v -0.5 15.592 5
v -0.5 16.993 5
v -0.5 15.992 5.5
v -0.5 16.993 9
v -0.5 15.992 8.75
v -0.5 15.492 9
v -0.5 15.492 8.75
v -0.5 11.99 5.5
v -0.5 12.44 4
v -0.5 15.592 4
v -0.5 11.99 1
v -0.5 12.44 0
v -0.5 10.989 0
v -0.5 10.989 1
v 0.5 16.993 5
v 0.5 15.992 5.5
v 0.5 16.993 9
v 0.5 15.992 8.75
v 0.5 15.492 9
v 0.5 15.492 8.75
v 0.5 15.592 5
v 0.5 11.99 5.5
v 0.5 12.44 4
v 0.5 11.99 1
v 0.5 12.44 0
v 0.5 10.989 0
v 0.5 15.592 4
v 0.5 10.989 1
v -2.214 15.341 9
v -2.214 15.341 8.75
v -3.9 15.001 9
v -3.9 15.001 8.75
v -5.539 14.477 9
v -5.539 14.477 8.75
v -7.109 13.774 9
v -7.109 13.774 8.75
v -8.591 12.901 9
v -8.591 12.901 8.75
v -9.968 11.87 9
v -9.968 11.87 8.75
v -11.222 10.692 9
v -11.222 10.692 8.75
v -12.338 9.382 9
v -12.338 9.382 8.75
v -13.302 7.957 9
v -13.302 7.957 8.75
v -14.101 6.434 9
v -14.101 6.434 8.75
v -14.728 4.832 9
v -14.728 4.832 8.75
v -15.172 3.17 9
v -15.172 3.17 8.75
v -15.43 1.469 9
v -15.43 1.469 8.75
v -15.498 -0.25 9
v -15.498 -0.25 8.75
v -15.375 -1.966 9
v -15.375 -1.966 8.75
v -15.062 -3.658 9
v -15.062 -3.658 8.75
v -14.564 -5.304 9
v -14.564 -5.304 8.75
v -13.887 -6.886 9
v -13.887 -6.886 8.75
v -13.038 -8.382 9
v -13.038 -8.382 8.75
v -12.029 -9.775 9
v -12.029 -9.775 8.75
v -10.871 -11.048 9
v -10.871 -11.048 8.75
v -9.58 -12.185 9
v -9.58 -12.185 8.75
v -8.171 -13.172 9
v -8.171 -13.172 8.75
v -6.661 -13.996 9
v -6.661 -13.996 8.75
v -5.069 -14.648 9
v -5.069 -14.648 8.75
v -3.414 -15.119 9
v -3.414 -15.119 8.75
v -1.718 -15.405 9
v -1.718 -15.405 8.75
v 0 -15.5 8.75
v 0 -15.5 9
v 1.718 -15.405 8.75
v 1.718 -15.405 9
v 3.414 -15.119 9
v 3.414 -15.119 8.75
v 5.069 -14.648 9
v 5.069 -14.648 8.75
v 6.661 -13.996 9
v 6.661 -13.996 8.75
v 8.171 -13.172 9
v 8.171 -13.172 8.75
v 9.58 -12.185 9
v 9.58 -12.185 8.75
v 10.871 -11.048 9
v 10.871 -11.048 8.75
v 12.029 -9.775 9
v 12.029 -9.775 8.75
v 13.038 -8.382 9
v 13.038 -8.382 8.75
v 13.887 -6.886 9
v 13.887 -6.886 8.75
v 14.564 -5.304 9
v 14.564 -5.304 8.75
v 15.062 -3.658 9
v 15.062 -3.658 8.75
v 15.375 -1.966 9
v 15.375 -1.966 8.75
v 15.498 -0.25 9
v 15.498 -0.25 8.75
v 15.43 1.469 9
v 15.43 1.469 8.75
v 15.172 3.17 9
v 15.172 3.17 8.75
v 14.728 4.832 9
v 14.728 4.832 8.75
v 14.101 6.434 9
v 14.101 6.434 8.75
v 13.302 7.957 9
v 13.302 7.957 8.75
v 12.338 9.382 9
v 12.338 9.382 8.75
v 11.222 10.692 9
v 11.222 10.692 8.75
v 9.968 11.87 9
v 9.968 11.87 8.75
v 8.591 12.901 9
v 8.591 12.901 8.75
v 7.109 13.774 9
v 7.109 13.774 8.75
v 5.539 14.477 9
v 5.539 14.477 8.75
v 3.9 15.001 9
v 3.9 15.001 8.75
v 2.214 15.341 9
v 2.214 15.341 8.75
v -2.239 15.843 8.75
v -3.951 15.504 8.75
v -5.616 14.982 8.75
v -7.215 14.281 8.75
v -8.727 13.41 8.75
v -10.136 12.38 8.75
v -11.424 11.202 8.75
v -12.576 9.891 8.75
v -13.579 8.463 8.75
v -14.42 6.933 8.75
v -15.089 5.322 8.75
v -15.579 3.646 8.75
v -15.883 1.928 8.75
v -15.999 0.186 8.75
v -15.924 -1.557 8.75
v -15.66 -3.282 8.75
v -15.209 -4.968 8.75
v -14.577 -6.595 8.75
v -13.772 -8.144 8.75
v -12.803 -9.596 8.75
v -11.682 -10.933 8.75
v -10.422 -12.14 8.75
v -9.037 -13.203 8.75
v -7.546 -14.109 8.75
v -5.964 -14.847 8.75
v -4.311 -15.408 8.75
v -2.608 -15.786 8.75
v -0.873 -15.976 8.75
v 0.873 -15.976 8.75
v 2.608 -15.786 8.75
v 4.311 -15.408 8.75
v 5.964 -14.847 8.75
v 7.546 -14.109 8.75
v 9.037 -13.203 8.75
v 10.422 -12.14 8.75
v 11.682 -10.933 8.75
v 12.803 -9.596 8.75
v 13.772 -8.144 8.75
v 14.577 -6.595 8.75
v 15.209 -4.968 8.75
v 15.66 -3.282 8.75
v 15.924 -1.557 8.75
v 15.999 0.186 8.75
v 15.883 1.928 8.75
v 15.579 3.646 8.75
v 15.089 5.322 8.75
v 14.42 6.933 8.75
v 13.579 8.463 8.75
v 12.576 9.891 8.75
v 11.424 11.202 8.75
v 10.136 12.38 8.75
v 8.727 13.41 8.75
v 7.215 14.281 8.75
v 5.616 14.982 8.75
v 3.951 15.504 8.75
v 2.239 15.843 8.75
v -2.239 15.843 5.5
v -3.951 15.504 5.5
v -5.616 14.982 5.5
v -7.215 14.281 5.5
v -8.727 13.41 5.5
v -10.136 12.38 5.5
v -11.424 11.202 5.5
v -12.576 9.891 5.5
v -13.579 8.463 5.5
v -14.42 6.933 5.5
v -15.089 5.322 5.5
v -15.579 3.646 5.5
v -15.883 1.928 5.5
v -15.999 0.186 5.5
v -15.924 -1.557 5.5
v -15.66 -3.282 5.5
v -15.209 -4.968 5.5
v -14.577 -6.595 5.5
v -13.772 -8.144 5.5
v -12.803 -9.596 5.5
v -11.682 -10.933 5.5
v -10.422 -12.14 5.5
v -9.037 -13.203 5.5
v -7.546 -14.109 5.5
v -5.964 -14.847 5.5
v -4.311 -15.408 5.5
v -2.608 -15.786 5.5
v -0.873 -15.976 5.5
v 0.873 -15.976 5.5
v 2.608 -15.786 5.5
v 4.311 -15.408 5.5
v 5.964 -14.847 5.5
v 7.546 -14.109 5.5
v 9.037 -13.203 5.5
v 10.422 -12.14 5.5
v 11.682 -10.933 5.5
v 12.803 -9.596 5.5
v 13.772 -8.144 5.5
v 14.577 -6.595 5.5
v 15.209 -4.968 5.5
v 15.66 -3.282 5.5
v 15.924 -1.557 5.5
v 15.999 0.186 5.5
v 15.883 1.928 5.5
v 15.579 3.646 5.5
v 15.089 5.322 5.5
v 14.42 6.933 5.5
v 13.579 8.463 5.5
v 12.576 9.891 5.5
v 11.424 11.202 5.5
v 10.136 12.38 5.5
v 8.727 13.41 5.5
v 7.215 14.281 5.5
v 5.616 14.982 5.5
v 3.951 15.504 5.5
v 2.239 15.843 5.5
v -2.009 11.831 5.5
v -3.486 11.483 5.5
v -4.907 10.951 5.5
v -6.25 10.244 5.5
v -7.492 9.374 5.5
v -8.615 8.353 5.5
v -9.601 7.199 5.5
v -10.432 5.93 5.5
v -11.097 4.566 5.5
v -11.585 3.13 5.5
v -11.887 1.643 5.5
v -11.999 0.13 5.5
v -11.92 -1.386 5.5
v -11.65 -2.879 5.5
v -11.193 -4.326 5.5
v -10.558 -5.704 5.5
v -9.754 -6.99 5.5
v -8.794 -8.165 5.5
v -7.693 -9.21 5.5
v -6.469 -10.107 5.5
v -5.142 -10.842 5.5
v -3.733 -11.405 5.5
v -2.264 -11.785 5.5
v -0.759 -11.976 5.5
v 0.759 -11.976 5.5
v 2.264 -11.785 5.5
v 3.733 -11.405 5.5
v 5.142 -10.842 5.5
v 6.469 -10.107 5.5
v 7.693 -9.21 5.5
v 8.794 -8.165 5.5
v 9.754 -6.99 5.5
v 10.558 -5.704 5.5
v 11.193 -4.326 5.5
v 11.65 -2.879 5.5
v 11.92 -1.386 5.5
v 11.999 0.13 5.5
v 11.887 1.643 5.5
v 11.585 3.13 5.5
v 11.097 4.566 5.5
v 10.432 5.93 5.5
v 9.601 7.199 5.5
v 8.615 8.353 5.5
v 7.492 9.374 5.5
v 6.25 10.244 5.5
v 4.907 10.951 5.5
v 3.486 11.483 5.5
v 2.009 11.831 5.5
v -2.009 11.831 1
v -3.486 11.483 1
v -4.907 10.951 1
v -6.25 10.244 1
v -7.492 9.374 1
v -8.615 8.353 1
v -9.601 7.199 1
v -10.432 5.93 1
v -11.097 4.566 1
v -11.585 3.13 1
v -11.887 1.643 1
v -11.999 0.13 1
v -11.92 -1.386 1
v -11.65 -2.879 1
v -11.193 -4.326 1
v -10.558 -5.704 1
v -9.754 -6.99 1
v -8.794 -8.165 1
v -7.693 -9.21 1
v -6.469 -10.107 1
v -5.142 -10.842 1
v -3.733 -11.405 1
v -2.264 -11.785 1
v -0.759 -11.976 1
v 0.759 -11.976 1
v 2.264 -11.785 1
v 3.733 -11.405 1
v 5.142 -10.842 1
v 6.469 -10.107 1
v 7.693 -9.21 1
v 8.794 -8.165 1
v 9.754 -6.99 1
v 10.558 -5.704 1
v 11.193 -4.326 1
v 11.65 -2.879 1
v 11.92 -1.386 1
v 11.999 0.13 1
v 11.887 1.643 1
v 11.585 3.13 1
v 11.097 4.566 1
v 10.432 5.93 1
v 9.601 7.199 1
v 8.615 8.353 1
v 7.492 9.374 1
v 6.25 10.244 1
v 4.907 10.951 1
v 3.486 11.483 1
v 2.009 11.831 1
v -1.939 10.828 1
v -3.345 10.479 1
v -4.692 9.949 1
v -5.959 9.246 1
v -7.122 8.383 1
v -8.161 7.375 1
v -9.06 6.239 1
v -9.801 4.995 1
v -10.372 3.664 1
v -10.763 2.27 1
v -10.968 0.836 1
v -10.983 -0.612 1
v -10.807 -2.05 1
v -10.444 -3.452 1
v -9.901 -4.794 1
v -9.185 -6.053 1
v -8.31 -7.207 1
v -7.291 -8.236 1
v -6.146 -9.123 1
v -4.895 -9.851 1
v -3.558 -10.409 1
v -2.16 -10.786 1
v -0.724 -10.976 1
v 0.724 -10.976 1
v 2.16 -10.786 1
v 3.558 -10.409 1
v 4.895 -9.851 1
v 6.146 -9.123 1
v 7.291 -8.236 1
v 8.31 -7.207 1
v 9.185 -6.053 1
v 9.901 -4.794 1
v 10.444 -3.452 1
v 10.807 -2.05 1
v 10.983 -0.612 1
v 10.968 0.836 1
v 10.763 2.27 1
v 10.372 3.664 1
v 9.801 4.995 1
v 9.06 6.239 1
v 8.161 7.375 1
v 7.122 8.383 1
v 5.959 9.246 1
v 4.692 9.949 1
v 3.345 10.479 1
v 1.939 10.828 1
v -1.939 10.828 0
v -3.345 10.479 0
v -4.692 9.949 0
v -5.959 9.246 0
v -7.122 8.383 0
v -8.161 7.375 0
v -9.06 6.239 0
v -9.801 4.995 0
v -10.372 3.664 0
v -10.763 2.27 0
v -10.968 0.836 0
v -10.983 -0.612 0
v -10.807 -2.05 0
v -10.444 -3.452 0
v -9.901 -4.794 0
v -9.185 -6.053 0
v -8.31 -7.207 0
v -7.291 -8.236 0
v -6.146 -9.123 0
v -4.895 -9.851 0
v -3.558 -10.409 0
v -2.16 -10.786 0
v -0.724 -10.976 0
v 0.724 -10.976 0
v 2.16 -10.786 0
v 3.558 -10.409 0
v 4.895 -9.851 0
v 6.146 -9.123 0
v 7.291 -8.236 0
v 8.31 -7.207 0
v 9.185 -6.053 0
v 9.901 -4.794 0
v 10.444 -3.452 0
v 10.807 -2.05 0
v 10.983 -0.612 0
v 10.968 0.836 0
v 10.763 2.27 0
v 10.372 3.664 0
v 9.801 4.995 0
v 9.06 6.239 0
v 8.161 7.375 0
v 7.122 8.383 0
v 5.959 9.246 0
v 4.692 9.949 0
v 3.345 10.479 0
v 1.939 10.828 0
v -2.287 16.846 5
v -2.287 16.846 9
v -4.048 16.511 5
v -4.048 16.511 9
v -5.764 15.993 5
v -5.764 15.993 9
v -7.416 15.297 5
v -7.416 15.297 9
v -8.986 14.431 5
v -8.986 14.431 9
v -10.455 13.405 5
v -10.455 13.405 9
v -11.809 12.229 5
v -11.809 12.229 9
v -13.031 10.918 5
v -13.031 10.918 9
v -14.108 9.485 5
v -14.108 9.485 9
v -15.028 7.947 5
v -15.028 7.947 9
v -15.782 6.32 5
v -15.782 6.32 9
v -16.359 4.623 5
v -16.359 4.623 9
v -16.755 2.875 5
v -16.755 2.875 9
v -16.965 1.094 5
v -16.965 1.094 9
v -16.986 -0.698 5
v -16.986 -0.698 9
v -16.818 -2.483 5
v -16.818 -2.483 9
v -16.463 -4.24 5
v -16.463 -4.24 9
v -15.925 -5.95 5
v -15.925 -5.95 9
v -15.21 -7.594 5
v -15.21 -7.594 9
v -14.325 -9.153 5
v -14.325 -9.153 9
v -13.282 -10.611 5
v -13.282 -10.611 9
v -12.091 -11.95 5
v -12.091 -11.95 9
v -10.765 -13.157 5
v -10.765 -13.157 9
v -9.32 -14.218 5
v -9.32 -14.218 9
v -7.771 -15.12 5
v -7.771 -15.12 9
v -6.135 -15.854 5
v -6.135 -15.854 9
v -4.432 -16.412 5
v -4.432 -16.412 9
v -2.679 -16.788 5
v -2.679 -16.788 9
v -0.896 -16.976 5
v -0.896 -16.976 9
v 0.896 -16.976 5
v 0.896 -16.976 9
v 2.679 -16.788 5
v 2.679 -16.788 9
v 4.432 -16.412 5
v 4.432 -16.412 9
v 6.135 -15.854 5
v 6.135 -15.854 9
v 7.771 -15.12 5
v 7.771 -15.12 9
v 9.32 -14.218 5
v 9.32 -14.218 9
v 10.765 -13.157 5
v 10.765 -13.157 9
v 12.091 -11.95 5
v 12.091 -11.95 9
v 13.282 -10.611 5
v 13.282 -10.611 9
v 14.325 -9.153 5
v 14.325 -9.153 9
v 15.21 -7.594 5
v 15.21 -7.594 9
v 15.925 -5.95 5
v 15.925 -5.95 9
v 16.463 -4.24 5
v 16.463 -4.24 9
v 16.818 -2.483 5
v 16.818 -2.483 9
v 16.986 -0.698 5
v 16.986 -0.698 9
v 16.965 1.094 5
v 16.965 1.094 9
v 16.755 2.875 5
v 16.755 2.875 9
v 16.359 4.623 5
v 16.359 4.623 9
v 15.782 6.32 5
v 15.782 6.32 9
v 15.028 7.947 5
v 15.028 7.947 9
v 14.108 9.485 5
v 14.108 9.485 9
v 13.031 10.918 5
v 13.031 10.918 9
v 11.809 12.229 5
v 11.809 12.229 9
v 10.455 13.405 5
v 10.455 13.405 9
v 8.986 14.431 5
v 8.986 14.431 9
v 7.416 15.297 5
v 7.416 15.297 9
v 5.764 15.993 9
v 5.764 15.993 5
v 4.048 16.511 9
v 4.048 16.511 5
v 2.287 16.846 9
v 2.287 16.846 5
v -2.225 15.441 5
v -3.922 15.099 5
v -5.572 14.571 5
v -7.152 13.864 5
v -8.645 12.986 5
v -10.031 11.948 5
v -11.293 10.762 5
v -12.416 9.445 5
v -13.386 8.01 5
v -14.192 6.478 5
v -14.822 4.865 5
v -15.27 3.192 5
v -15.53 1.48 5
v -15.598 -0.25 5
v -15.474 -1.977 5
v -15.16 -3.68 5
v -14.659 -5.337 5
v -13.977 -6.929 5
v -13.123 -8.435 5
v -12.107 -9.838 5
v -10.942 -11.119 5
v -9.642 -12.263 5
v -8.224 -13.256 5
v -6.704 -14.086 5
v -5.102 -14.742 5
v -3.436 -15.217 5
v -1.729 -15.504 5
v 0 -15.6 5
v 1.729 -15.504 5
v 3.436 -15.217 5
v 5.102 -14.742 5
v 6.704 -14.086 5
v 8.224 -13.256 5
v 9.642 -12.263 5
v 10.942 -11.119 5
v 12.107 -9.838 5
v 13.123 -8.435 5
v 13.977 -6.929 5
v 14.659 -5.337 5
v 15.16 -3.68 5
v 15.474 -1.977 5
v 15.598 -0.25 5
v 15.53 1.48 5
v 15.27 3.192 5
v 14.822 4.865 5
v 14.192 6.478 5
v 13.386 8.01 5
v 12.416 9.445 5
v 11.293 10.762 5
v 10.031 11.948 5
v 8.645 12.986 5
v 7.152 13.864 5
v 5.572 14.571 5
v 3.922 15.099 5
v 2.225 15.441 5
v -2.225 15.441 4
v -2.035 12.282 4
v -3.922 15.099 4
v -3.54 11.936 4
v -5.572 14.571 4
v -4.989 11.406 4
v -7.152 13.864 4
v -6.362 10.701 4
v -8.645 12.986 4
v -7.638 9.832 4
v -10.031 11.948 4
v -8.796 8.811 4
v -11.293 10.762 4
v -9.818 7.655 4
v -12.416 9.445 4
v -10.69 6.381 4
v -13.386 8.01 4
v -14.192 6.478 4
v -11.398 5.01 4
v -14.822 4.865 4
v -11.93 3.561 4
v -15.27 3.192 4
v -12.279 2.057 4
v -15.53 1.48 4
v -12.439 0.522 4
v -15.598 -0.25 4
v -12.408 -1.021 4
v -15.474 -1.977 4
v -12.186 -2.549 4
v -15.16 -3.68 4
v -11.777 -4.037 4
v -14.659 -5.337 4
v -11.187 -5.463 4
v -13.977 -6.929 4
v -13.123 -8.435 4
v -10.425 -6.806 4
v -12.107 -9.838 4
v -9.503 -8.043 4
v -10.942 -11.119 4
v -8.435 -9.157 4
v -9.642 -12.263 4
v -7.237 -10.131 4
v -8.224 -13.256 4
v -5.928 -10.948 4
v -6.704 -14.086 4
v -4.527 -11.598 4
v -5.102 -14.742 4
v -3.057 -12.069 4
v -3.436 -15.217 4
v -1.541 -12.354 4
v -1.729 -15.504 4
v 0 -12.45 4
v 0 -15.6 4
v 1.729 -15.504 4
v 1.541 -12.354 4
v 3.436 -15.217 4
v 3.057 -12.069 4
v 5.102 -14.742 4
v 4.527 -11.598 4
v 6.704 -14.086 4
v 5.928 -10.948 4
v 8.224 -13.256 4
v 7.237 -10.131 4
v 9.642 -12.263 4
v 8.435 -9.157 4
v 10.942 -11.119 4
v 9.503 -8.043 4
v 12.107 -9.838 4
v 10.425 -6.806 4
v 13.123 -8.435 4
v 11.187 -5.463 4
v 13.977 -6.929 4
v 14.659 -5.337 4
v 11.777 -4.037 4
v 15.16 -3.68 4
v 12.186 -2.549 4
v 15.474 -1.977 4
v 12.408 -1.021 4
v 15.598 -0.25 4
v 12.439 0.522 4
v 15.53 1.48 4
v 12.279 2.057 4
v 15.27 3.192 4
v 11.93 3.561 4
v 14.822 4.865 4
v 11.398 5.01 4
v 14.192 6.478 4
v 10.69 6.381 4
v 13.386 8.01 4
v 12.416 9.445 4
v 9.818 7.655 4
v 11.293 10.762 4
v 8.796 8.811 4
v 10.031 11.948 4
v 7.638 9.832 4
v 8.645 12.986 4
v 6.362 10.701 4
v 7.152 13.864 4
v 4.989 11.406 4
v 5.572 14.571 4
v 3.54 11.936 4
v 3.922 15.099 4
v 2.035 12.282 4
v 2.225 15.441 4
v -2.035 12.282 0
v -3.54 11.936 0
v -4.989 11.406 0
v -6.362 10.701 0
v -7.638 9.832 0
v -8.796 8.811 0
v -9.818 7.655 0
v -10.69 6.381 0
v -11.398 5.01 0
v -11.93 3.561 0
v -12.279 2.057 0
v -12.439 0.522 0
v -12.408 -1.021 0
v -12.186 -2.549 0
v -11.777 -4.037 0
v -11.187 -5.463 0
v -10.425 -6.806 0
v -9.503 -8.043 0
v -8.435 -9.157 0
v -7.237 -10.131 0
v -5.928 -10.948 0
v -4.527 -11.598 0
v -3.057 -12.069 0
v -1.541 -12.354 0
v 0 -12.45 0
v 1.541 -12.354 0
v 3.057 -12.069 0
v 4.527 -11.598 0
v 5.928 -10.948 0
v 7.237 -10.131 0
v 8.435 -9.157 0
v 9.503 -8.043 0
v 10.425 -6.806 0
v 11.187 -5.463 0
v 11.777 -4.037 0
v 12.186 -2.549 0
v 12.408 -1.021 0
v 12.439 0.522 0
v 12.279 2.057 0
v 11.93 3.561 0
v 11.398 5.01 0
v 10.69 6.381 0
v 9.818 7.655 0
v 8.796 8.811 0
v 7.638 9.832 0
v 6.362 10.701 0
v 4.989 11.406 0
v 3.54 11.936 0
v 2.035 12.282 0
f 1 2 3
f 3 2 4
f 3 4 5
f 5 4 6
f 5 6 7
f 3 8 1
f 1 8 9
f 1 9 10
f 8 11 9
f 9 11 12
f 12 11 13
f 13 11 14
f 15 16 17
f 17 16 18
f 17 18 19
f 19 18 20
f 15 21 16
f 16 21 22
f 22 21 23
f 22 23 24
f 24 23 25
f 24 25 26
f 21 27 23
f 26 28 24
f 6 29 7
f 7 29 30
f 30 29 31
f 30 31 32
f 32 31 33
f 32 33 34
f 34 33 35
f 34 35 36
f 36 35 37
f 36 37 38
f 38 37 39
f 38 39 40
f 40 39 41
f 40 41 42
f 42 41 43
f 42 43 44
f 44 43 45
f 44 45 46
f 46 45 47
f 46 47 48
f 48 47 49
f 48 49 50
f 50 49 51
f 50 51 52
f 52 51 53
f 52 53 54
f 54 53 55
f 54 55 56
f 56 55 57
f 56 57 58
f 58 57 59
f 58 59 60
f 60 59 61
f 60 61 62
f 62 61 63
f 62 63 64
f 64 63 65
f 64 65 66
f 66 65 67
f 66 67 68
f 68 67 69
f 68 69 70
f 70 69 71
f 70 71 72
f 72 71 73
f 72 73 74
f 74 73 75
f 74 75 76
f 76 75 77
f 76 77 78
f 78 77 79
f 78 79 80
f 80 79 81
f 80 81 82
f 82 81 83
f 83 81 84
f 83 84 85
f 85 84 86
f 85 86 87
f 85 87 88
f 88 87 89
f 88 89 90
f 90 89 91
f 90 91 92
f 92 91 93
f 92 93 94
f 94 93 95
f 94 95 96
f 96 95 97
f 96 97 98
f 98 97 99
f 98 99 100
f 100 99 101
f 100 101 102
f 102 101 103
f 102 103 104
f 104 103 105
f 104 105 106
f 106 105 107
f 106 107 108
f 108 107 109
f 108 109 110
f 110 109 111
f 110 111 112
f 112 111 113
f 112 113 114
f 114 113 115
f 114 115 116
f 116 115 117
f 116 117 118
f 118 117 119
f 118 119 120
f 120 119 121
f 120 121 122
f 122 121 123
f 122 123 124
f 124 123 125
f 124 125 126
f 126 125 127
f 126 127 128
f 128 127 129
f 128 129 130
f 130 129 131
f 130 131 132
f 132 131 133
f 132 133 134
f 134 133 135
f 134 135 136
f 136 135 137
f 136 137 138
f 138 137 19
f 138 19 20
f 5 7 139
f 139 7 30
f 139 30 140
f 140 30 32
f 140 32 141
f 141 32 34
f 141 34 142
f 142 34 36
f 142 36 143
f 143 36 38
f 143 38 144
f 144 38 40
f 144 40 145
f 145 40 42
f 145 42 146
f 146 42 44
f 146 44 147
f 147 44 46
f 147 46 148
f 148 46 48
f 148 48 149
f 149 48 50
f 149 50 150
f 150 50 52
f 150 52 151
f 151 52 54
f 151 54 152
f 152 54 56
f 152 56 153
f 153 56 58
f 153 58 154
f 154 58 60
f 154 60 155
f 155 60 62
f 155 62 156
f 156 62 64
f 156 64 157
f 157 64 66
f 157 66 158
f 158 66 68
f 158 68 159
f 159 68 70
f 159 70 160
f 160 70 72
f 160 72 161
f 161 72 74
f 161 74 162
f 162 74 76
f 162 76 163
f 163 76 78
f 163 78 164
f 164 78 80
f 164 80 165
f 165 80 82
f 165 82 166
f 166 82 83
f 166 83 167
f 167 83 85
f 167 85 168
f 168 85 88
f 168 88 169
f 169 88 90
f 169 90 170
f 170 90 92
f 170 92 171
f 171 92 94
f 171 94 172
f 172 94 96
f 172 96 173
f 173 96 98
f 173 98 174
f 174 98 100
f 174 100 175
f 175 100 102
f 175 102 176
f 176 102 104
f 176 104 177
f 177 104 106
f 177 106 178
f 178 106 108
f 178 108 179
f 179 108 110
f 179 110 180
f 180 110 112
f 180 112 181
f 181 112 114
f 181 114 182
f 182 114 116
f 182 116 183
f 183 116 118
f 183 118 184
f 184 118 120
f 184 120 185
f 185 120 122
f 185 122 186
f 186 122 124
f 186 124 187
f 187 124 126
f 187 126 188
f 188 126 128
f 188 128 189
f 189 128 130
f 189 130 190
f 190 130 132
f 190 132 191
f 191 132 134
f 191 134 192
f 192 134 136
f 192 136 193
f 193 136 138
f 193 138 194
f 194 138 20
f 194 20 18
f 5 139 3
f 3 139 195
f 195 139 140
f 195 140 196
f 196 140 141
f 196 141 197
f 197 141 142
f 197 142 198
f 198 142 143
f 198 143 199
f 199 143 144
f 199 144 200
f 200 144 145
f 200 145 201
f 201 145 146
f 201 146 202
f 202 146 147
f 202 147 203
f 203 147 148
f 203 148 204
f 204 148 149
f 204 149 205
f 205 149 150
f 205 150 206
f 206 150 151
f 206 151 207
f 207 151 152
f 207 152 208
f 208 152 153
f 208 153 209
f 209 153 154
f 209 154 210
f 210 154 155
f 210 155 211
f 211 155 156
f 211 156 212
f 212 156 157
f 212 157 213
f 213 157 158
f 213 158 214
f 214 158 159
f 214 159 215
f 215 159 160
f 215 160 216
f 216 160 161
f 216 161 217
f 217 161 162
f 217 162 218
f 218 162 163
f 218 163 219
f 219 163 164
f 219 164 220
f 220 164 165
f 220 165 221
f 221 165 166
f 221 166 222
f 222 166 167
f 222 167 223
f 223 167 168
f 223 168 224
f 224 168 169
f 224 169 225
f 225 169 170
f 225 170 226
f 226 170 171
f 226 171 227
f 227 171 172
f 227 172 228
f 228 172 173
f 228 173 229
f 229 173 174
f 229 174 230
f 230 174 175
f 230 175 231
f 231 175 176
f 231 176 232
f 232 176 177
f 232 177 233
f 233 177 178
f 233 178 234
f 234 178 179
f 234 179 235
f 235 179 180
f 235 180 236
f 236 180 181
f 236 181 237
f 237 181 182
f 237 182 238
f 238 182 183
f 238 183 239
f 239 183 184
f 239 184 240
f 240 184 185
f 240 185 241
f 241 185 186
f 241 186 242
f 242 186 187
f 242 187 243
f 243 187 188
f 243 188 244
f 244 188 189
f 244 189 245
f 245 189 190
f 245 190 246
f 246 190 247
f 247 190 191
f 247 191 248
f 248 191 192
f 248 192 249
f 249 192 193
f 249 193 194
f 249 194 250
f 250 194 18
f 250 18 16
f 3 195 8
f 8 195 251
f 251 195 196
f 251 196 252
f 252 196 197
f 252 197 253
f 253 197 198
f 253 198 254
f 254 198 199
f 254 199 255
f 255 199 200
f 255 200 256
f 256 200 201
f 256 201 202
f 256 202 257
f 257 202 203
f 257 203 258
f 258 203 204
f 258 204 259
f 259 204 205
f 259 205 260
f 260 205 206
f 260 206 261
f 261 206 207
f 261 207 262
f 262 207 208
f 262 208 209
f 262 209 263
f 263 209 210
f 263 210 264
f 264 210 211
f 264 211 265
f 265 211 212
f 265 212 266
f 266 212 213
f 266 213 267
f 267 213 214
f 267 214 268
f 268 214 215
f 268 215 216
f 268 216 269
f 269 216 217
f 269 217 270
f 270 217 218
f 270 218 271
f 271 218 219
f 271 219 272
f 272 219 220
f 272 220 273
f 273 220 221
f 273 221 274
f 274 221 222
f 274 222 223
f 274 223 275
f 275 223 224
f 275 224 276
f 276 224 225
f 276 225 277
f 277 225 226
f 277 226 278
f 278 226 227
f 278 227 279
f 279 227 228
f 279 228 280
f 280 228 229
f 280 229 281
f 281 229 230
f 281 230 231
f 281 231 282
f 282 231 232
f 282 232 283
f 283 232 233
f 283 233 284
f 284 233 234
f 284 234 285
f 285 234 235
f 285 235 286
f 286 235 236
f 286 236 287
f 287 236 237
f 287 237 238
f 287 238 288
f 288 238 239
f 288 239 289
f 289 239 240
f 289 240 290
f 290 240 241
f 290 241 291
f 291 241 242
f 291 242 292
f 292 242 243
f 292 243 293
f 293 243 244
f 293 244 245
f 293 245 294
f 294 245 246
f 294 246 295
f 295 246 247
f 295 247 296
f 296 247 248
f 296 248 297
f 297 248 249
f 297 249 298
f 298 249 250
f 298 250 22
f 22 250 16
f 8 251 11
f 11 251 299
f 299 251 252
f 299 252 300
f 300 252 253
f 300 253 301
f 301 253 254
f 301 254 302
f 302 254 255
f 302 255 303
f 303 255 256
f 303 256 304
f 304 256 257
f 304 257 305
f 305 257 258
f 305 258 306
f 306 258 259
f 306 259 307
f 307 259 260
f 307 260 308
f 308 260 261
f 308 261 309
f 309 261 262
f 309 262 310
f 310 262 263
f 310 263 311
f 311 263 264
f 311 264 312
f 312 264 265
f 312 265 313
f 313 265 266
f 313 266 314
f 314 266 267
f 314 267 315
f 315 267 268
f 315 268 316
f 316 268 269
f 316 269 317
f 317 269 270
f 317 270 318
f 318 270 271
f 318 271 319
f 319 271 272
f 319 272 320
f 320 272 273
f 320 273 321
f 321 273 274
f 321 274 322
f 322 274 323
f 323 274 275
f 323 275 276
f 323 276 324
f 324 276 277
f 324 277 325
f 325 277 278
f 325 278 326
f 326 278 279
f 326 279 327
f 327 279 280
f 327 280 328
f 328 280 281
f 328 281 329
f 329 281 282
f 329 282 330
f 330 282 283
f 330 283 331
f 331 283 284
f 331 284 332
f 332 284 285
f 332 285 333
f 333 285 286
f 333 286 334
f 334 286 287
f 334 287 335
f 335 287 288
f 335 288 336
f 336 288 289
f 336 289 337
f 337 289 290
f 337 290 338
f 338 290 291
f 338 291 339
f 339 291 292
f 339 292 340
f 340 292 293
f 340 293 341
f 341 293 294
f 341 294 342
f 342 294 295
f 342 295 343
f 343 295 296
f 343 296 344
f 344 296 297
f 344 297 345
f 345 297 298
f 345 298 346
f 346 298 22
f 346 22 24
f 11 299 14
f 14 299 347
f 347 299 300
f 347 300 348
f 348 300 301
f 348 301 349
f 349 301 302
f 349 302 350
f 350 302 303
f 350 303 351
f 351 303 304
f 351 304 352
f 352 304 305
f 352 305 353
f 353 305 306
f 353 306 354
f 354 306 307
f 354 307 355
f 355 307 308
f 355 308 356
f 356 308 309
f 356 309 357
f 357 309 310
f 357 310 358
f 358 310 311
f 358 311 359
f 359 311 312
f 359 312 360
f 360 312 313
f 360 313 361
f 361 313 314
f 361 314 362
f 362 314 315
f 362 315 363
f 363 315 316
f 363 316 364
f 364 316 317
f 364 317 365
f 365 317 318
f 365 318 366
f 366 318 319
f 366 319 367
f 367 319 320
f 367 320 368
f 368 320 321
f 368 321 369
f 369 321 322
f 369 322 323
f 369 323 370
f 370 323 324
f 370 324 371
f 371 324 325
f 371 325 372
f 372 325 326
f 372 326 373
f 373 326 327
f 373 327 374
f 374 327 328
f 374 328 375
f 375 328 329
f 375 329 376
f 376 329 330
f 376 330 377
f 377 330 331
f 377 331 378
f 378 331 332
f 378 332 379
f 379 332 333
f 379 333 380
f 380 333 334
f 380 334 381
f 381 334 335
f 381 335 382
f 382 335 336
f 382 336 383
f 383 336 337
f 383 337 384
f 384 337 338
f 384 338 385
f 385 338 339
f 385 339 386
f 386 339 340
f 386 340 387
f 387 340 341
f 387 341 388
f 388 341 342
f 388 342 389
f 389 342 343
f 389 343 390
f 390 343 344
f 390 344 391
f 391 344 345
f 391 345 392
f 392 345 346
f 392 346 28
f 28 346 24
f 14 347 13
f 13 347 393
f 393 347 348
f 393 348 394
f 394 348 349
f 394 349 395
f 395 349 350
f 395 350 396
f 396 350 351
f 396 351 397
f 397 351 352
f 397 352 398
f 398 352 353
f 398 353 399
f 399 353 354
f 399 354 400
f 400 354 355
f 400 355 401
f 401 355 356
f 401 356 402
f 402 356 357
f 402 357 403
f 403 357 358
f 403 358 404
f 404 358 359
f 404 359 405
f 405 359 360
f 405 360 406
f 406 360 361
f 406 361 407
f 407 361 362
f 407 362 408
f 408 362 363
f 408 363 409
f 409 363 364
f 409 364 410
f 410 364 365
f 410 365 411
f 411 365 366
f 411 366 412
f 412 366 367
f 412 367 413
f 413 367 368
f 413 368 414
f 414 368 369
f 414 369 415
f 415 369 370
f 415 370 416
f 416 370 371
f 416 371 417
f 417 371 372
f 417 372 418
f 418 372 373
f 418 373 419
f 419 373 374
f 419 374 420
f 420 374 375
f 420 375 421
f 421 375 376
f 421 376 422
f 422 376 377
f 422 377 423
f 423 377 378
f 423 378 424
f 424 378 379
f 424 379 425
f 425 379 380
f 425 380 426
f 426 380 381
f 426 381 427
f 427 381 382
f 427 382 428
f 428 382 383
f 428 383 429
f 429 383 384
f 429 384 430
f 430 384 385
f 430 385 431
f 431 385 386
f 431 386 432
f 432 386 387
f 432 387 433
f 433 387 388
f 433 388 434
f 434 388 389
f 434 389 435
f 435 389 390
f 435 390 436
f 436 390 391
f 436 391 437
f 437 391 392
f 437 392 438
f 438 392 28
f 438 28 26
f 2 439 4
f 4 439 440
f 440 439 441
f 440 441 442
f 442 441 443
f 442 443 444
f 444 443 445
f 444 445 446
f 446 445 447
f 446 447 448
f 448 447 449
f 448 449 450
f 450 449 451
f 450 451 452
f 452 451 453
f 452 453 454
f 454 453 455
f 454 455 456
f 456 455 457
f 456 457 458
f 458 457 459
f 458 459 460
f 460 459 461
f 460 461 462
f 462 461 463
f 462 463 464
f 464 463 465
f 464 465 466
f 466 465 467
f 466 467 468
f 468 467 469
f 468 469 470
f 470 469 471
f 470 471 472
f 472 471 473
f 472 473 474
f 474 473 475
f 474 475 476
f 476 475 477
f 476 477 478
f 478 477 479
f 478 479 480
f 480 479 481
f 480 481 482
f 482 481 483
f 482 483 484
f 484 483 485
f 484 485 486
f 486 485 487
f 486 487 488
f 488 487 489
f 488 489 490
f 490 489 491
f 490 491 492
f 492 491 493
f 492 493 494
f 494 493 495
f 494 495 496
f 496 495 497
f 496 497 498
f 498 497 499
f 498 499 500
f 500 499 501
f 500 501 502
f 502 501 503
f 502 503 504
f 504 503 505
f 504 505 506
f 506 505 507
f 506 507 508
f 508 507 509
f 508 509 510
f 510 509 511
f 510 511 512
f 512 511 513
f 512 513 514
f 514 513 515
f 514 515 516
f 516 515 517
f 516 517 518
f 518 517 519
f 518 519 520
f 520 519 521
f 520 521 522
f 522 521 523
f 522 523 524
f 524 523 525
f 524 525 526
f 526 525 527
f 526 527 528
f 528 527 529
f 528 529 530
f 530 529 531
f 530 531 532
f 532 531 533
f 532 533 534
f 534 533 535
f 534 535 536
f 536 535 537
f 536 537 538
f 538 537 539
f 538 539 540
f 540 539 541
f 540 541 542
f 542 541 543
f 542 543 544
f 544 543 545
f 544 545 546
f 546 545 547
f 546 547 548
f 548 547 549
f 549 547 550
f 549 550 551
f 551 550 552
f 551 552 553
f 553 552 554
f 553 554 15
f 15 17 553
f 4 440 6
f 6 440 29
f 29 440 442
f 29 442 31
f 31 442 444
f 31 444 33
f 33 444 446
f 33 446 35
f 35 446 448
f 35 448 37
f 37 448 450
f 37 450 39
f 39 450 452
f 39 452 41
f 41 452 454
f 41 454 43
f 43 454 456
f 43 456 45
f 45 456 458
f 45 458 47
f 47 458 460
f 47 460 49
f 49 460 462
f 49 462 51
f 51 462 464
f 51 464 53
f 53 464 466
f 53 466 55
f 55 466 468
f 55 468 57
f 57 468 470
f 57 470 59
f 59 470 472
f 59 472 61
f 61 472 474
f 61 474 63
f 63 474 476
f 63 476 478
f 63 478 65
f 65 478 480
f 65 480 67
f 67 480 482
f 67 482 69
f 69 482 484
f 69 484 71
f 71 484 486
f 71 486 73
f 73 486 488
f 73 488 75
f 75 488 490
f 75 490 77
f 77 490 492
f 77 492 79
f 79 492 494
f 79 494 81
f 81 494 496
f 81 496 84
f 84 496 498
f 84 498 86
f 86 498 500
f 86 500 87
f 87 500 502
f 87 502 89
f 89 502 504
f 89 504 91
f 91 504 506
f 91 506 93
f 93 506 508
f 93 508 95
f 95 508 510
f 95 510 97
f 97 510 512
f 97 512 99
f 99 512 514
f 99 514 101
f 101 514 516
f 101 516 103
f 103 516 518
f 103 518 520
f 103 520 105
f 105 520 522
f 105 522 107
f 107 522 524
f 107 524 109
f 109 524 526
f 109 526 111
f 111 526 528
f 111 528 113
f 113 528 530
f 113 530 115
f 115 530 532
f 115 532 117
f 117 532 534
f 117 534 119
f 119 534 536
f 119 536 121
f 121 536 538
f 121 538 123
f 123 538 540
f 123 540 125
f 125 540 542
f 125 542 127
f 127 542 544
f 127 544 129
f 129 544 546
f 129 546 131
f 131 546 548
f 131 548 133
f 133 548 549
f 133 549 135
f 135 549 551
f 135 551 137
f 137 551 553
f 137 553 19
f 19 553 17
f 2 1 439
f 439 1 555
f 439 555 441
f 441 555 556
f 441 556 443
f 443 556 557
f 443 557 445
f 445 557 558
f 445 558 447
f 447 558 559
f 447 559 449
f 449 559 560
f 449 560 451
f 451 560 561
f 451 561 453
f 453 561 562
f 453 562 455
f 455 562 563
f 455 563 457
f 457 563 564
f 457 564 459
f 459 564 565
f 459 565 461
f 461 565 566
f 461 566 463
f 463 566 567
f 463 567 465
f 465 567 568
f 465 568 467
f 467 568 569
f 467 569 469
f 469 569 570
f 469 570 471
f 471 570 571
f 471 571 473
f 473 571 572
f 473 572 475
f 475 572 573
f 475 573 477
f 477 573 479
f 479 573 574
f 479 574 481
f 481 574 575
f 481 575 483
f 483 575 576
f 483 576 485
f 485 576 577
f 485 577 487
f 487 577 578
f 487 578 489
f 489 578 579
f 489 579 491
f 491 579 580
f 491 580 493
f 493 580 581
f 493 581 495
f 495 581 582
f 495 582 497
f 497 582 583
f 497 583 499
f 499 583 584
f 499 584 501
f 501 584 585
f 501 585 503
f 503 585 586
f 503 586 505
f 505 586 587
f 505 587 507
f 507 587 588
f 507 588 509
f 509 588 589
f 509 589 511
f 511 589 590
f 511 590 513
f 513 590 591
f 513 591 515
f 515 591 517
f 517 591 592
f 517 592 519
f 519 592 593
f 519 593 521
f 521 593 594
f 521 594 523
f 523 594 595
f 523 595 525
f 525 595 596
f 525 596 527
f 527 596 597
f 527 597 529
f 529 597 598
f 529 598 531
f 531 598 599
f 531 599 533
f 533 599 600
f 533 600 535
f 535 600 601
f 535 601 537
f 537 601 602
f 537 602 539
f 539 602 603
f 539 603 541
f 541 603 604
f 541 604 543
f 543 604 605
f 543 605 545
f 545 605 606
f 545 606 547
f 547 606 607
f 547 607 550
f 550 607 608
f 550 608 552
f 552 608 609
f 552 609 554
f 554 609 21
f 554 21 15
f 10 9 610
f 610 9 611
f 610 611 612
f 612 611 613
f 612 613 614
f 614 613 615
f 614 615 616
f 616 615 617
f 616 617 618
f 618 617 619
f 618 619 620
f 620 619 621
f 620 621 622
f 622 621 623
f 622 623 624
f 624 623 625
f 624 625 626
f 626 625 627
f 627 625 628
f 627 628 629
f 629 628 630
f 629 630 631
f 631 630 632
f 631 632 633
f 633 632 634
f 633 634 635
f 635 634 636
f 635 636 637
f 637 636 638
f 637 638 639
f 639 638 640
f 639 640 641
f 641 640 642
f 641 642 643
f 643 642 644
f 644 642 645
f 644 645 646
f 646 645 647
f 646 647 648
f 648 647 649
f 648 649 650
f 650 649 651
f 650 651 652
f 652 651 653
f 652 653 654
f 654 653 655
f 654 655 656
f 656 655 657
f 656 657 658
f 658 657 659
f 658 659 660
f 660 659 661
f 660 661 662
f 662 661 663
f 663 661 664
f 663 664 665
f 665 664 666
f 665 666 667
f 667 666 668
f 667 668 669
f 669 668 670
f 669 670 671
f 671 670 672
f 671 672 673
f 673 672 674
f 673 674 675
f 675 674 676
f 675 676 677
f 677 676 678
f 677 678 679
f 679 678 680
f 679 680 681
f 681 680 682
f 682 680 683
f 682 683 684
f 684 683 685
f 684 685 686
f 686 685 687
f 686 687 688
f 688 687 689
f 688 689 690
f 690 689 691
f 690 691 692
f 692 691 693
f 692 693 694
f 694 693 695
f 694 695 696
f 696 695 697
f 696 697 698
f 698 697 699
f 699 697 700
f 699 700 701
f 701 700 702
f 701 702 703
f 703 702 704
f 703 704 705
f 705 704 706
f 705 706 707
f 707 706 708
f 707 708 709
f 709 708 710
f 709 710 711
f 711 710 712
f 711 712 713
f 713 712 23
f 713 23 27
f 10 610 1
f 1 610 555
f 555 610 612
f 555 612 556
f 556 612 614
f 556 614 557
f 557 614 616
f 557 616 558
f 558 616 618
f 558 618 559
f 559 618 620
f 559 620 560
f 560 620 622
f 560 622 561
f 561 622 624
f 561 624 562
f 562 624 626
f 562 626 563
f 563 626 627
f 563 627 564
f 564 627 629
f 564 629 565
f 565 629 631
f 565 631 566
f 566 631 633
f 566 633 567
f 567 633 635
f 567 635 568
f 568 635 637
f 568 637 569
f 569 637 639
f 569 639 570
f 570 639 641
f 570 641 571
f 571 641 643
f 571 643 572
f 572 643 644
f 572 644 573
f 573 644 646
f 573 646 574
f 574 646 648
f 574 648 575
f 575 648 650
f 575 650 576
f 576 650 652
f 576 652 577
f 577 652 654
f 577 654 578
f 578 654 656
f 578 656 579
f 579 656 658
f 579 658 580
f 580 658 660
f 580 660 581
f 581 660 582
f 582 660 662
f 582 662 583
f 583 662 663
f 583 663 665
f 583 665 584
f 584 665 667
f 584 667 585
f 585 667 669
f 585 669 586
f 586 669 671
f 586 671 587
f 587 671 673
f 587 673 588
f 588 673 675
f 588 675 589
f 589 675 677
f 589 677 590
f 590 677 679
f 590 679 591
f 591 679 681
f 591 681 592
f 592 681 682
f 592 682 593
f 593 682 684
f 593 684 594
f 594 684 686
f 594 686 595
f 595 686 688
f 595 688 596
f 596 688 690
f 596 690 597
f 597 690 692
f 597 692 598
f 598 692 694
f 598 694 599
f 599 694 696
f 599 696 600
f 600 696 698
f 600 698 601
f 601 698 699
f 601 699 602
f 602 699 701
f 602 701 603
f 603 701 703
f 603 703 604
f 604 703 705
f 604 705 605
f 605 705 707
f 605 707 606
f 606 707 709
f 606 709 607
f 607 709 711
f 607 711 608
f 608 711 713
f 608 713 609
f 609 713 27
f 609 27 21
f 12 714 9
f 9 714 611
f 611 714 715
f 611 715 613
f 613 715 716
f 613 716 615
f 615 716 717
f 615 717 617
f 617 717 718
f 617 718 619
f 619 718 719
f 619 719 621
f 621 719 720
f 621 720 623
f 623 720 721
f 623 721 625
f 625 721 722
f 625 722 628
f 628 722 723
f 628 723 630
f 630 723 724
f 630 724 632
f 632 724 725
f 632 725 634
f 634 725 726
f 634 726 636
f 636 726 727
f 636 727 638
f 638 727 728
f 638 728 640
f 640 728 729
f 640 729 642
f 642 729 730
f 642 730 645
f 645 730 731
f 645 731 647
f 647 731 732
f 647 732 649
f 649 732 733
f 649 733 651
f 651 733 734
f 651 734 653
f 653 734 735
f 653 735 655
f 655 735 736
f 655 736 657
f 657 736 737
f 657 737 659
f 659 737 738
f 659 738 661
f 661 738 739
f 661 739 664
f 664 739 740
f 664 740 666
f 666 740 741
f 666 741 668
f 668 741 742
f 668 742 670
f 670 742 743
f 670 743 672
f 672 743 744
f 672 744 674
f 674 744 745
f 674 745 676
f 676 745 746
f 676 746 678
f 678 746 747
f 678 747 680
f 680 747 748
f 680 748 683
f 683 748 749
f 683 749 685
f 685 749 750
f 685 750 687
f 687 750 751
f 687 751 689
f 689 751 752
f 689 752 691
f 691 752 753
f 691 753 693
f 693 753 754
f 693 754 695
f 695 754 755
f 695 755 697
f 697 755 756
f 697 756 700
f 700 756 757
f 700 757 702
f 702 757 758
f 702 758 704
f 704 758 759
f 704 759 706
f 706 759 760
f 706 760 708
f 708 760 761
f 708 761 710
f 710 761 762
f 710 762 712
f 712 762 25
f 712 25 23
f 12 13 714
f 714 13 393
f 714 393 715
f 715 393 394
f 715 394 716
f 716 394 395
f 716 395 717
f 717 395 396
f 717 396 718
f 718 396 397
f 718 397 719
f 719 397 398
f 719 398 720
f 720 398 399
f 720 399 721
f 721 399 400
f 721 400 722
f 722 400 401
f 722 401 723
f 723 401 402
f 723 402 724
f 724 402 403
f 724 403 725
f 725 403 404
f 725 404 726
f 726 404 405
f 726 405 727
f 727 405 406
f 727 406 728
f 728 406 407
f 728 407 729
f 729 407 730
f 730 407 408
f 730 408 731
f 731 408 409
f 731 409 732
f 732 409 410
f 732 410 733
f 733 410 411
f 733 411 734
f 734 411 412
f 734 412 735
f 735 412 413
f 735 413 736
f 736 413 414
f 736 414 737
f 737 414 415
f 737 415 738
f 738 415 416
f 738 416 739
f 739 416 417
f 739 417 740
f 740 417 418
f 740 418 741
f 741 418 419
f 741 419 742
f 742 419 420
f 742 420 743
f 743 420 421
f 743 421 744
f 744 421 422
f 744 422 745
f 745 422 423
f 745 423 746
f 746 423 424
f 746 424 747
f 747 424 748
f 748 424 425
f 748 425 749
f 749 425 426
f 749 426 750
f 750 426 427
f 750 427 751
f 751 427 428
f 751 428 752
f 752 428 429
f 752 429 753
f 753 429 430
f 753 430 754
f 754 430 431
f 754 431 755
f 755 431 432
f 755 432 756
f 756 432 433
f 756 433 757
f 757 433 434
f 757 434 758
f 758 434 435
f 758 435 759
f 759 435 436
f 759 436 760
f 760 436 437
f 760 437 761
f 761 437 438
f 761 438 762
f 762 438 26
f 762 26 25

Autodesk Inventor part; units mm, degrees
ref_plane "YZ Plane" through (0, 0, 0) normal (1, 0, 0) x (0, 1, 0)
ref_plane "XZ Plane" through (0, 0, 0) normal (0, 1, 0) x (-1, 0, 0)
ref_plane "XY Plane" through (0, 0, 0) normal (0, 0, 1) x (1, 0, 0)
sketch "Sketch1" plane through (0, 0, 0) normal (0, 0, 1) x (1, 0, 0)
  circle A0 centre (0, 0) radius 12.45
  circle A1 centre (0, 0) radius 11
  circle A2 centre (0, 0) radius 15.6
  circle A3 centre (0, 0) radius 12
  dimension "d0" = 24.9
  dimension "d1" = 22
  dimension "d2" = 31.2
  dimension "d3" = 24
extrude "Extrusion1" add sketch "Sketch1" along normal blind 1 contours A3
extrude "Extrusion2" add sketch "Sketch1" along normal blind 4 contours A0
sketch "Sketch2" plane through (0, 0, 4) normal (0, 0, 1) x (1, 0, 0)
  circle A0 centre (0, 0) radius 15.6 projected
  circle A1 centre (0, 0) radius 12 projected
extrude "Extrusion3" add sketch "Sketch2" along normal blind 1
sketch "Sketch4" plane through (0, 0, 5) normal (0, 0, 1) x (1, 0, 0)
  circle A0 centre (0, 0) radius 16
  circle A1 centre (0, 0) radius 17
  circle A2 centre (0, 0) radius 12 projected
  dimension "d14" = 32
  dimension "d15" = 34
extrude "Extrusion5" add sketch "Sketch4" along normal blind 0.5 contours A0
extrude "Extrusion6" add sketch "Sketch4" along normal blind 4 contours A1
sketch "Sketch5" plane through (0, 0, 9) normal (0, 0, 1) x (1, 0, 0)
  circle A0 centre (0, 0) radius 16 projected
  circle A1 centre (0, 0) radius 15.5
  dimension "d20" = 31
extrude "Extrusion7" add sketch "Sketch5" against normal blind 0.25
sketch "Sketch8" plane through (0, 0, 9) normal (0, 0, 1) x (1, 0, 0)
  line L0 (0.5, 10) -> (-0.5, 10)
  line L1 (-0.5, 10) -> (-0.5, 20)
  line L2 (-0.5, 20) -> (0.5, 20)
  line L3 (0.5, 20) -> (0.5, 10)
  circle A0 centre (0, 0) radius 15 projected
  line L4 (0.5, 10) -> (-0.5, 20) construction
  line L5 (-0.5, 10) -> (0.5, 20) construction
  point P0 (0, 15)
  dimension "d30" = 1
  dimension "d31" = 10
extrude "Extrusion10" cut sketch "Sketch8" against normal blind 10 contours L0 L1 A0 L3 | A0 L1 L2 L3 picked at (-0.0556, 11.6664)
properties part number "32mmFilterto25mmBoreAdapter"
